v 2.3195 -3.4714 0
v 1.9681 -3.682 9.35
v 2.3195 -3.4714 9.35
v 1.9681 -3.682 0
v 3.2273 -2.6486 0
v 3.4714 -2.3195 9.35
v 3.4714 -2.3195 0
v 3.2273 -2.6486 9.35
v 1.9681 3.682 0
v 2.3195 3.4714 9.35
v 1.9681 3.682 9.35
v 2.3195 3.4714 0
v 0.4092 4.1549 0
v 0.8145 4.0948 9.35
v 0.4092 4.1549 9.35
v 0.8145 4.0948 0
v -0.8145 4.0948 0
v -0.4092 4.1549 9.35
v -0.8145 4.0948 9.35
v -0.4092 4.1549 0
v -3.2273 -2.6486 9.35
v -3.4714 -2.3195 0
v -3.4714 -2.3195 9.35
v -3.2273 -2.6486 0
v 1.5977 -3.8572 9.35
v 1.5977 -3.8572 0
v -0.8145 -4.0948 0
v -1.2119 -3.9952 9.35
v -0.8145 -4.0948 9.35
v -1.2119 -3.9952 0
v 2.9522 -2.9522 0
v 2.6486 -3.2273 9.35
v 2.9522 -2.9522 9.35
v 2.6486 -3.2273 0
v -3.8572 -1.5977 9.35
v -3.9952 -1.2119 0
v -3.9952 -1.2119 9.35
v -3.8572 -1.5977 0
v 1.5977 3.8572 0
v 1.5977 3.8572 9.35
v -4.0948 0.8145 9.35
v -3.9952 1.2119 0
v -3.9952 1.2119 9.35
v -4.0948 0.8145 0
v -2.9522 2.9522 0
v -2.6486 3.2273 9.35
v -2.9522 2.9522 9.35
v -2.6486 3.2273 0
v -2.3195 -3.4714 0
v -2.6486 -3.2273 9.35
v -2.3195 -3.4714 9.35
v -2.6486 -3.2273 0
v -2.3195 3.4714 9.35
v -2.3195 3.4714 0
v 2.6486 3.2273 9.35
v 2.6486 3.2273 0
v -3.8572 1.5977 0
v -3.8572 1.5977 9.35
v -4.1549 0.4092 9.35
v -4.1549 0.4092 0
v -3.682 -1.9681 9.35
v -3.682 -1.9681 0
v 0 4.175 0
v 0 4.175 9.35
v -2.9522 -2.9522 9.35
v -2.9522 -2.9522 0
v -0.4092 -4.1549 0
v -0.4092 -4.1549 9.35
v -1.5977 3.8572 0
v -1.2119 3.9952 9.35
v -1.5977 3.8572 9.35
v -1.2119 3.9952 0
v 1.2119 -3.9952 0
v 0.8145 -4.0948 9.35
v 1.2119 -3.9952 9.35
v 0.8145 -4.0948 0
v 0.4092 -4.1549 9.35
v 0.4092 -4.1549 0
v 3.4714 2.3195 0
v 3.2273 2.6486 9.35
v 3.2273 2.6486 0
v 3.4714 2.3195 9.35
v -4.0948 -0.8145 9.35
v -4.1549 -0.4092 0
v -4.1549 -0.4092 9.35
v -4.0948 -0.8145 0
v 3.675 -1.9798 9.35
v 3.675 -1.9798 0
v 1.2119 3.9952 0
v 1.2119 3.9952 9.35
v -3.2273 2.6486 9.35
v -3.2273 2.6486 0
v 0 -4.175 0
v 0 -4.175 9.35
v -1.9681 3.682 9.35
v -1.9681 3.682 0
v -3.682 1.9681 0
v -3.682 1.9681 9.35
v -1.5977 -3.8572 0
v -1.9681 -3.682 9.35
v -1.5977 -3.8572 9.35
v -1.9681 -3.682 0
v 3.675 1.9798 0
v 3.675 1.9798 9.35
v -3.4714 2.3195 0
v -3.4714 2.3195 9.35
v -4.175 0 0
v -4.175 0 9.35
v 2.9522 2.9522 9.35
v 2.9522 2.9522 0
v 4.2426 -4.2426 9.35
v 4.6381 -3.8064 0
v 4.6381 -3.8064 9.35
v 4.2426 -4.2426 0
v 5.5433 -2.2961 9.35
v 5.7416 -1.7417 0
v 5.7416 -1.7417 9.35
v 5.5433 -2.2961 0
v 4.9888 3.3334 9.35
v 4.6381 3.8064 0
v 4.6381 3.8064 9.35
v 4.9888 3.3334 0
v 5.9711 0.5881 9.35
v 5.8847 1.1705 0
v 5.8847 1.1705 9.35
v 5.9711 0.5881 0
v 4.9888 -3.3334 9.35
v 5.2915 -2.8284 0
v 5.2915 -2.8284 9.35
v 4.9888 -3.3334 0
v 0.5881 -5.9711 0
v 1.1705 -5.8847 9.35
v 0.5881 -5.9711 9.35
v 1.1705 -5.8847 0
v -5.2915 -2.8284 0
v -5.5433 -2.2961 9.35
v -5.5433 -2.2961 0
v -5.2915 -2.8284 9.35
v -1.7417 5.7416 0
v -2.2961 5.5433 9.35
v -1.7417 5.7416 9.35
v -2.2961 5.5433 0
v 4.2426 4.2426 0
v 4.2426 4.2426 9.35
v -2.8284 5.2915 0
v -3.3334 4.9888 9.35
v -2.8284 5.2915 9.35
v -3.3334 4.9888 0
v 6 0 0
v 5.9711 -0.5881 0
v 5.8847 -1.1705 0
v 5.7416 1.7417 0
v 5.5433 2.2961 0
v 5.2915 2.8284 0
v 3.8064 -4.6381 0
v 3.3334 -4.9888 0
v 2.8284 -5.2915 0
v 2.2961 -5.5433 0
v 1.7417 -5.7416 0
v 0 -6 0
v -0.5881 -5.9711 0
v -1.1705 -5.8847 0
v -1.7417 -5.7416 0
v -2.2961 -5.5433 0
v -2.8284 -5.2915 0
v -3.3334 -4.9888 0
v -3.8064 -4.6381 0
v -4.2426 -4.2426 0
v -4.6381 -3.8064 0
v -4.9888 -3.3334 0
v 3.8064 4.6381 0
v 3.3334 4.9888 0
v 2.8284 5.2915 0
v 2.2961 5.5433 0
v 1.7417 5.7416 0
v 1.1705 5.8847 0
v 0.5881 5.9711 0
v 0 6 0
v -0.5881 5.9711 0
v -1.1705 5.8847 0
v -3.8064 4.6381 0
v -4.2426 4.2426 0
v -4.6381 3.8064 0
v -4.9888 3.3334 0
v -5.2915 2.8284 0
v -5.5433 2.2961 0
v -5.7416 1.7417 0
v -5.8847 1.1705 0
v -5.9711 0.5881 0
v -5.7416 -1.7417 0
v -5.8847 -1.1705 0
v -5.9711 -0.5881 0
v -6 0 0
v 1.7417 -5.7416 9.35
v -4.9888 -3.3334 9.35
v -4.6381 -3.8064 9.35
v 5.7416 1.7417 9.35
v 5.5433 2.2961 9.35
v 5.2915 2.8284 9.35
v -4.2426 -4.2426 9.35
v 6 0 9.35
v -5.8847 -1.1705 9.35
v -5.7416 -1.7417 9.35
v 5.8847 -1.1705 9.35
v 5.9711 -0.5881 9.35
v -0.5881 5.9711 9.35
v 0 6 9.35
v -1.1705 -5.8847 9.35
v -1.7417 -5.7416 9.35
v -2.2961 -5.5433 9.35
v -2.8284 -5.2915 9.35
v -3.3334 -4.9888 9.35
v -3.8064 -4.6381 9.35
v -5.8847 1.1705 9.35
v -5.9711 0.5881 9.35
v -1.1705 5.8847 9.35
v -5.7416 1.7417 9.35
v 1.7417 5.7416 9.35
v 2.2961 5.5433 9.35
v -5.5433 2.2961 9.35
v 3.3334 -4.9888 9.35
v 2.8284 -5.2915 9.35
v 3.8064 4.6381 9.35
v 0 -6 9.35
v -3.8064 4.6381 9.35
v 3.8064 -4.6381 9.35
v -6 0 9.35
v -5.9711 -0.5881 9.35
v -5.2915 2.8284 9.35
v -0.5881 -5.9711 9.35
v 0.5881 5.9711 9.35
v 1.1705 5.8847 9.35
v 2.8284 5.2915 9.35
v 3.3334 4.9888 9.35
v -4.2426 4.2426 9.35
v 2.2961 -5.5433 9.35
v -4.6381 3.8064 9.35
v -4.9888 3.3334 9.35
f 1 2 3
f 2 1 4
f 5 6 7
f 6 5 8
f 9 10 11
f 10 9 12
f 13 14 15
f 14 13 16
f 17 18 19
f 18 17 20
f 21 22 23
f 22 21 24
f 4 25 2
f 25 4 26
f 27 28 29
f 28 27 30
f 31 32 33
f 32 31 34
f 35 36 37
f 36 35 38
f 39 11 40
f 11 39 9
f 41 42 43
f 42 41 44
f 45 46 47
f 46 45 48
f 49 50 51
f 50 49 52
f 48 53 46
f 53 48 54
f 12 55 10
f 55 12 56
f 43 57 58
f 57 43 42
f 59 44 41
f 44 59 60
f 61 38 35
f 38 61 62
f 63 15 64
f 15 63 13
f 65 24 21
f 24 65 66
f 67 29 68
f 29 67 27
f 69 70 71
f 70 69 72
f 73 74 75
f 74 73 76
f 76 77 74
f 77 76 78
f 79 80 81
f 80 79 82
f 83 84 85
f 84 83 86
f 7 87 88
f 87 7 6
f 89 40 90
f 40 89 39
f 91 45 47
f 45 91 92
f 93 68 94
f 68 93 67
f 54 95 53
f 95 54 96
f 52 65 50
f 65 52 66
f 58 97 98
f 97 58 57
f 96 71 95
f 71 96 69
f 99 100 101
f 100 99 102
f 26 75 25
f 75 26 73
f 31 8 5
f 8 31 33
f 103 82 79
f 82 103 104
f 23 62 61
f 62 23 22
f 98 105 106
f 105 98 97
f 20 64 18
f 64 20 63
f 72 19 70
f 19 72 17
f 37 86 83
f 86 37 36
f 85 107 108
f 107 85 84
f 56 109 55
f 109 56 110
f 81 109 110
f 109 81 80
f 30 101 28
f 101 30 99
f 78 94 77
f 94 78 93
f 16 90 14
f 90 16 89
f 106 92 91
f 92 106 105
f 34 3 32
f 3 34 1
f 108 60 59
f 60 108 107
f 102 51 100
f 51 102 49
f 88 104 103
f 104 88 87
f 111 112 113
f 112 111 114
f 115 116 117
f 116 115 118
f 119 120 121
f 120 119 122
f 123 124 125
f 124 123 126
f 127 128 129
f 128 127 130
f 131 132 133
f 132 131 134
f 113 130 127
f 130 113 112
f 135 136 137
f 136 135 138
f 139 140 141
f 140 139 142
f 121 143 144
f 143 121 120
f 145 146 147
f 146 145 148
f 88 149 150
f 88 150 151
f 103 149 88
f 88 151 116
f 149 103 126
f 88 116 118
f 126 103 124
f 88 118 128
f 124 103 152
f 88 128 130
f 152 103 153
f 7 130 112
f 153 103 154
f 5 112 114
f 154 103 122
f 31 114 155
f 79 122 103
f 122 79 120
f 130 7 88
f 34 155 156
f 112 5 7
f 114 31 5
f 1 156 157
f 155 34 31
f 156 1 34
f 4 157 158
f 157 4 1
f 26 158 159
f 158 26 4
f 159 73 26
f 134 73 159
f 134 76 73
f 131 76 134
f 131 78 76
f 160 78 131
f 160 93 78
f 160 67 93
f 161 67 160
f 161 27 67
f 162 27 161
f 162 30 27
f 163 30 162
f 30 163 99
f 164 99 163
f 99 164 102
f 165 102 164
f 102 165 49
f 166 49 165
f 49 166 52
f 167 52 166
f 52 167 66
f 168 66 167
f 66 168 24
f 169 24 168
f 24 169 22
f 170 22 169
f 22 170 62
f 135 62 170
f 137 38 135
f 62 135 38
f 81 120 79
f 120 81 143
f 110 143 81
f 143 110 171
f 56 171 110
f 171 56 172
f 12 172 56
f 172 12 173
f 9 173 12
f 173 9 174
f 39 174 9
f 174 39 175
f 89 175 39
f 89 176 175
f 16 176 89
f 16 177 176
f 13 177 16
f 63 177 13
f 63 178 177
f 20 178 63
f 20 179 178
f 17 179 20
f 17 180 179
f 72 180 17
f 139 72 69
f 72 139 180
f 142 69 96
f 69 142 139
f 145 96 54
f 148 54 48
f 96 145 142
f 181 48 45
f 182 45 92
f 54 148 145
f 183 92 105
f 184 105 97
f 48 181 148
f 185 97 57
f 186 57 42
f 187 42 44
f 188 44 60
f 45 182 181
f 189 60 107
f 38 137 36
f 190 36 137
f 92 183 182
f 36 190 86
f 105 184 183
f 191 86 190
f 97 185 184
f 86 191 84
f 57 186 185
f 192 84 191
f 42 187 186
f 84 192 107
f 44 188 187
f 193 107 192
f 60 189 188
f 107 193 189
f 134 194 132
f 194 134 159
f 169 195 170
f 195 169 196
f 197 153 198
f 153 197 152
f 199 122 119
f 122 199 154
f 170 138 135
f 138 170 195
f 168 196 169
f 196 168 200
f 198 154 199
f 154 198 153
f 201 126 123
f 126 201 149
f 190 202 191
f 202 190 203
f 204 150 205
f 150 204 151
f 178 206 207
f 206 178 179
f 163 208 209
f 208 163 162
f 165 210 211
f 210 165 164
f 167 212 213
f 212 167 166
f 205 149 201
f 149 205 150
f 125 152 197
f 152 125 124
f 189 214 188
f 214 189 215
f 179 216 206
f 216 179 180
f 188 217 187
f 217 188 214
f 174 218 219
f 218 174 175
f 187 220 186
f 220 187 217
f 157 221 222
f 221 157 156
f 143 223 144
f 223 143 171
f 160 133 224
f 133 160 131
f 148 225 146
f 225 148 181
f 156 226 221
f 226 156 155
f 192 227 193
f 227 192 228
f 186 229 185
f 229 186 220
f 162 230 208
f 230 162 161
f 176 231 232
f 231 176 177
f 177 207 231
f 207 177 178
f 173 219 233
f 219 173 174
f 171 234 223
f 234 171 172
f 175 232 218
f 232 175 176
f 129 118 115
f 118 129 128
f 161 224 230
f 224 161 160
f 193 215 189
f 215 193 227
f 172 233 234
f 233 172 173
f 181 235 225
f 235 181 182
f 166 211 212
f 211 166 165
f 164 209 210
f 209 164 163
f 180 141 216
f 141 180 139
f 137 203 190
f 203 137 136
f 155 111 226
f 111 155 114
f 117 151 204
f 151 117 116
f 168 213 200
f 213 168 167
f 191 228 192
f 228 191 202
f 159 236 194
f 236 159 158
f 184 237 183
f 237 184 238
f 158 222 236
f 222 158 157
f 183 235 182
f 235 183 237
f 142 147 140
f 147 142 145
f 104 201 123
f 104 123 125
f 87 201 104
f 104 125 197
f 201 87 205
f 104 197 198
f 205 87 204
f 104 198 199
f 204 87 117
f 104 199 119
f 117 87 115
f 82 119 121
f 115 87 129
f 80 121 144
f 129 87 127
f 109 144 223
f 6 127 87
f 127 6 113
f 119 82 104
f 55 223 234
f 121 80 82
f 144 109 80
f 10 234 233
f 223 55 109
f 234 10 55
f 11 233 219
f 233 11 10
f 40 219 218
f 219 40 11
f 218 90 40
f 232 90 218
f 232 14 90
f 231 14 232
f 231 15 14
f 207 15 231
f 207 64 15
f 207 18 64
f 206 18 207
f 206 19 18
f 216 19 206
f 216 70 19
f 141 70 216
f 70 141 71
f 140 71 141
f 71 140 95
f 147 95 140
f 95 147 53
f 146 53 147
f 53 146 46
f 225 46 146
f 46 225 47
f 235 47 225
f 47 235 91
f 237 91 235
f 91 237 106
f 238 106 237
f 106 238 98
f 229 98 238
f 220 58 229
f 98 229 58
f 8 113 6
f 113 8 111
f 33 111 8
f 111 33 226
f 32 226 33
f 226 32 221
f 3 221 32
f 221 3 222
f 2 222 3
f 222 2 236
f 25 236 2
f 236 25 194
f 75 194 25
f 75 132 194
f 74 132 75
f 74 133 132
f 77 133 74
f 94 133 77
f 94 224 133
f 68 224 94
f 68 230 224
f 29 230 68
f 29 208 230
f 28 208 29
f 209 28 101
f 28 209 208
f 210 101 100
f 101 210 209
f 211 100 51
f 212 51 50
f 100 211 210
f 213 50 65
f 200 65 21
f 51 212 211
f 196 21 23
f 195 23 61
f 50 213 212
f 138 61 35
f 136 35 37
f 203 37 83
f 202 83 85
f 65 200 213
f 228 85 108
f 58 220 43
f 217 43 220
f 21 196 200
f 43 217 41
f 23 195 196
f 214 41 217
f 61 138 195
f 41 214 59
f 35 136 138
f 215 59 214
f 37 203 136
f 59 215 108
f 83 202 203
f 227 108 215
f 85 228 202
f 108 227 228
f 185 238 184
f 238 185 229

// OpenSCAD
// file: parameters.scad
// =============================================================================
// Gen-BX — nightly 2026-10-11 (physics_scorer, honest magpylib watts)
// Gap reduction paid for by a bigger ring: the Gen-BU 8p/12c layout with the copper cut from 8.1 to 6.75 mm (magnet face to magnet face 10.70 → 9.35 mm, so Bz at the copper rises) and the lost window area won back radially, with the poles moved out to R71 and the bobbins stretched to r53–88. The scans show the thin-copper optimum only appears on the bigger ring (on R66 it gains far less), and R71 / Ø194 stator is the largest machine that still packs on one 410 mm plate.
// Clocking 0 deg (magnets N facing S) + D-flat keyed bore + index notch + flip-symmetric hole map.
// Windable 2-piece bobbin; turns = physics_scorer turns_fit; copper only between flanges.
// Steel back-iron: 2× Ø168 × 4.76 mm (3/16") mild-steel discs (steel_backiron_disc.dxf); magnets sit ON the steel
// (through-pockets) -> score with --back-iron. Night 2026-10-11.
// =============================================================================
topology            = "dual_rotor";

// --- Wire / winding (physics_scorer winding-fit) -------------------------------
wire_awg            = 26;
wire_od             = 0.45;     // insulated OD mm (bare 0.405)
fill_realistic      = 0.65;     // insulated-wire area / window (DENSE layered wind with a jig; scorer cap 0.65)
turns               = 410;       // = physics_scorer turns_fit (do NOT raise)
coil_former_type    = "bobbin";
coil_core_inset     = 14.87;     // radial copper build: hub = copper boundary inset by this
wind_build_axial    = 0.0;      // nothing proud of the flanges
wind_build_radial   = 0.0;

// --- Bobbin (base + lid) ---------------------------------------------------------
coil_id_r           = 53.00;    // copper boundary sector
coil_od_r           = 88.00;
span_deg            = 26.43;    // = pitch - 2*asin((wall+0.85)/coil_id_r) -> >=1.2 mm stator web
former_web          = 6.75;     // copper height between flanges (TALL copper: steel keeps Bz up)
flange_t            = 0.80;     // >= 0.8 mm FDM wall rule (tall winds push on the flanges)
wall                = 0.80;     // flange lip beyond copper
former_bare_h       = former_web + 2 * flange_t;
coil_envelope_h     = former_bare_h + 2 * wind_build_axial;
tab_w               = 7.0;
tab_len             = 7.0;
tab_h               = former_bare_h / 2;
pin_d               = 1.9;      // 1.75 mm filament locating pin
coil_mount_r        = coil_od_r + 0.2 + 4.0;
lead_y              = 1.6;
lead_slot_w         = 0.9;
lead_groove_d       = 0.6;

// --- Gap -------------------------------------------------------------------------
run_clear           = 0.50;     // rotor face -> flange
gap_spacer_h        = run_clear + wind_build_axial;
m2m                 = coil_envelope_h + 2 * run_clear;   // rotor face to rotor face (= gap_sleeve length)

// --- Stator ----------------------------------------------------------------------
coil_stations       = 12;
bay_clear           = 0.25;
stator_thick        = former_bare_h;                        // bobbins flush both faces
stator_od           = 194;
shaft_clear_stator  = 14.0;     // stator is static; gap sleeve OD 12 spins inside

// --- Rotor(s) --------------------------------------------------------------------
magnet_Br           = 1.43;     // N52
magnet_d_large      = 20.0;
magnet_h_large      = 5.0;      // one O20x5 per pocket
magnet_h_small      = 5.0;      // unused: no O5 pockets in this kit
halbach_magnetisation = "none";  // NO O5 assist magnets in this kit (scan: they lower the 4-pole score)
rotor_b_same_axis   = true;     // same-index magnets share one axis: N faces S across the gap
large_pocket_d      = 20.3;
small_pocket_d      = 5.3;
pocket_h            = 5.00;     // THROUGH the carrier: magnet back face sits on the steel disc (FLUSH seat: carrier = magnet height, magnet face level with the rotor face)
large_n             = 8;
R_large             = 71.0;
small_r_list        = [];       // no O5 pockets
carrier_od          = 168.0;
carrier_thick       = pocket_h;
hub_h               = 12.0;     // > steel_t + insert: radial set-screw clears the steel
hub_od              = 24.0;     // slim hub so the M4 brace rods fit at R~18 inside the coil ring
hub_insert_d        = 4.0;      // M3 heat-set insert, radial, bears on the D-flat
rotor_b_offset_deg  = 0.0;      // CLOCKING: magnets directly opposite
shaft_key           = "dflat";
dflat_depth         = 0.5;      // 8 mm shaft with 0.5 mm flat (7.5 across flat)
index_notch_d       = 3.0;

// --- Steel back-iron (buyable laser-cut) -------------------------------------------
steel_t             = 4.76;      // mild steel thickness (image method ignores it; sized from steel_flux.py so the return path stays well below saturation)
steel_center_hole   = 26.0;     // slips over the rotor hub (OD 24)
steel_od            = carrier_od;   // steel disc OD = rotor carrier OD

// --- Modular MAX interface ----------------------------------------------------------
shaft_bore          = 8.35;
dflat_x             = 4.0 - dflat_depth + (shaft_bore - 8.0) / 2;
bearing_d           = 21.85;
bearing_h           = 7.2;
m3_clear            = 3.5;
bolt_r_inner        = 30.0;     // M3 steel-disc clamp bolts (inside the magnet ring)
bolt_n_inner        = 4;
bolt_inner_angles   = [0, 90, 180, 270];
bolt_r_outer        = 44.0;     // second M3 steel-disc clamp ring
bolt_outer_angles   = [67.5, 112.5, 247.5, 292.5];
flange_bolt_r       = 91.5;     // frame rods: OUTSIDE the rotor OD (rotors spin inside them)
flange_bolt_n       = 4;
flange_bolt_offset  = 45.00;    // between coil stations -> never cuts a lead groove/tab
brace_r             = 18.0;
brace_d             = 4.3;      // temporary M4 jack rods (assembly only)
brace_n             = 4;
brace_angles        = [45, 135, 225, 315];          // flip-symmetric

spacer_pad_od       = 14.0;
spacer_pad_id       = m3_clear;
endbell_od          = 193.0;
endbell_thick       = 8.0;
endbell_shaft_clear = 10.0;
collar_h            = 10.0;
standoff_od         = 9.0;
frame_standoff_h    = run_clear + carrier_thick + hub_h + collar_h + 2.0;
sleeve_od           = 12.0;
plate_max_mm        = 410;

$fn = 64;
// main file
// Gen-BX — gap sleeve: rigid spacer on the shaft BETWEEN the two rotor carriers (passes through the stator
// hole). Length = m2m, so it sets the magnet gap and carries the full magnet pull. Print x1, upright.
include <parameters.scad>;
$fn = 64;
// D-flat keyed bore: flat faces +X (angle 0 = magnet pocket 0 = index notch)
module dflat_bore(h) {
    intersection() {
        cylinder(d=shaft_bore, h=h);
        translate([-shaft_bore, -shaft_bore, 0]) cube([shaft_bore + dflat_x, 2*shaft_bore, h]);
    }
}

difference() {
    cylinder(d=sleeve_od, h=m2m);
    translate([0, 0, -0.1]) dflat_bore(m2m + 0.2);
}
